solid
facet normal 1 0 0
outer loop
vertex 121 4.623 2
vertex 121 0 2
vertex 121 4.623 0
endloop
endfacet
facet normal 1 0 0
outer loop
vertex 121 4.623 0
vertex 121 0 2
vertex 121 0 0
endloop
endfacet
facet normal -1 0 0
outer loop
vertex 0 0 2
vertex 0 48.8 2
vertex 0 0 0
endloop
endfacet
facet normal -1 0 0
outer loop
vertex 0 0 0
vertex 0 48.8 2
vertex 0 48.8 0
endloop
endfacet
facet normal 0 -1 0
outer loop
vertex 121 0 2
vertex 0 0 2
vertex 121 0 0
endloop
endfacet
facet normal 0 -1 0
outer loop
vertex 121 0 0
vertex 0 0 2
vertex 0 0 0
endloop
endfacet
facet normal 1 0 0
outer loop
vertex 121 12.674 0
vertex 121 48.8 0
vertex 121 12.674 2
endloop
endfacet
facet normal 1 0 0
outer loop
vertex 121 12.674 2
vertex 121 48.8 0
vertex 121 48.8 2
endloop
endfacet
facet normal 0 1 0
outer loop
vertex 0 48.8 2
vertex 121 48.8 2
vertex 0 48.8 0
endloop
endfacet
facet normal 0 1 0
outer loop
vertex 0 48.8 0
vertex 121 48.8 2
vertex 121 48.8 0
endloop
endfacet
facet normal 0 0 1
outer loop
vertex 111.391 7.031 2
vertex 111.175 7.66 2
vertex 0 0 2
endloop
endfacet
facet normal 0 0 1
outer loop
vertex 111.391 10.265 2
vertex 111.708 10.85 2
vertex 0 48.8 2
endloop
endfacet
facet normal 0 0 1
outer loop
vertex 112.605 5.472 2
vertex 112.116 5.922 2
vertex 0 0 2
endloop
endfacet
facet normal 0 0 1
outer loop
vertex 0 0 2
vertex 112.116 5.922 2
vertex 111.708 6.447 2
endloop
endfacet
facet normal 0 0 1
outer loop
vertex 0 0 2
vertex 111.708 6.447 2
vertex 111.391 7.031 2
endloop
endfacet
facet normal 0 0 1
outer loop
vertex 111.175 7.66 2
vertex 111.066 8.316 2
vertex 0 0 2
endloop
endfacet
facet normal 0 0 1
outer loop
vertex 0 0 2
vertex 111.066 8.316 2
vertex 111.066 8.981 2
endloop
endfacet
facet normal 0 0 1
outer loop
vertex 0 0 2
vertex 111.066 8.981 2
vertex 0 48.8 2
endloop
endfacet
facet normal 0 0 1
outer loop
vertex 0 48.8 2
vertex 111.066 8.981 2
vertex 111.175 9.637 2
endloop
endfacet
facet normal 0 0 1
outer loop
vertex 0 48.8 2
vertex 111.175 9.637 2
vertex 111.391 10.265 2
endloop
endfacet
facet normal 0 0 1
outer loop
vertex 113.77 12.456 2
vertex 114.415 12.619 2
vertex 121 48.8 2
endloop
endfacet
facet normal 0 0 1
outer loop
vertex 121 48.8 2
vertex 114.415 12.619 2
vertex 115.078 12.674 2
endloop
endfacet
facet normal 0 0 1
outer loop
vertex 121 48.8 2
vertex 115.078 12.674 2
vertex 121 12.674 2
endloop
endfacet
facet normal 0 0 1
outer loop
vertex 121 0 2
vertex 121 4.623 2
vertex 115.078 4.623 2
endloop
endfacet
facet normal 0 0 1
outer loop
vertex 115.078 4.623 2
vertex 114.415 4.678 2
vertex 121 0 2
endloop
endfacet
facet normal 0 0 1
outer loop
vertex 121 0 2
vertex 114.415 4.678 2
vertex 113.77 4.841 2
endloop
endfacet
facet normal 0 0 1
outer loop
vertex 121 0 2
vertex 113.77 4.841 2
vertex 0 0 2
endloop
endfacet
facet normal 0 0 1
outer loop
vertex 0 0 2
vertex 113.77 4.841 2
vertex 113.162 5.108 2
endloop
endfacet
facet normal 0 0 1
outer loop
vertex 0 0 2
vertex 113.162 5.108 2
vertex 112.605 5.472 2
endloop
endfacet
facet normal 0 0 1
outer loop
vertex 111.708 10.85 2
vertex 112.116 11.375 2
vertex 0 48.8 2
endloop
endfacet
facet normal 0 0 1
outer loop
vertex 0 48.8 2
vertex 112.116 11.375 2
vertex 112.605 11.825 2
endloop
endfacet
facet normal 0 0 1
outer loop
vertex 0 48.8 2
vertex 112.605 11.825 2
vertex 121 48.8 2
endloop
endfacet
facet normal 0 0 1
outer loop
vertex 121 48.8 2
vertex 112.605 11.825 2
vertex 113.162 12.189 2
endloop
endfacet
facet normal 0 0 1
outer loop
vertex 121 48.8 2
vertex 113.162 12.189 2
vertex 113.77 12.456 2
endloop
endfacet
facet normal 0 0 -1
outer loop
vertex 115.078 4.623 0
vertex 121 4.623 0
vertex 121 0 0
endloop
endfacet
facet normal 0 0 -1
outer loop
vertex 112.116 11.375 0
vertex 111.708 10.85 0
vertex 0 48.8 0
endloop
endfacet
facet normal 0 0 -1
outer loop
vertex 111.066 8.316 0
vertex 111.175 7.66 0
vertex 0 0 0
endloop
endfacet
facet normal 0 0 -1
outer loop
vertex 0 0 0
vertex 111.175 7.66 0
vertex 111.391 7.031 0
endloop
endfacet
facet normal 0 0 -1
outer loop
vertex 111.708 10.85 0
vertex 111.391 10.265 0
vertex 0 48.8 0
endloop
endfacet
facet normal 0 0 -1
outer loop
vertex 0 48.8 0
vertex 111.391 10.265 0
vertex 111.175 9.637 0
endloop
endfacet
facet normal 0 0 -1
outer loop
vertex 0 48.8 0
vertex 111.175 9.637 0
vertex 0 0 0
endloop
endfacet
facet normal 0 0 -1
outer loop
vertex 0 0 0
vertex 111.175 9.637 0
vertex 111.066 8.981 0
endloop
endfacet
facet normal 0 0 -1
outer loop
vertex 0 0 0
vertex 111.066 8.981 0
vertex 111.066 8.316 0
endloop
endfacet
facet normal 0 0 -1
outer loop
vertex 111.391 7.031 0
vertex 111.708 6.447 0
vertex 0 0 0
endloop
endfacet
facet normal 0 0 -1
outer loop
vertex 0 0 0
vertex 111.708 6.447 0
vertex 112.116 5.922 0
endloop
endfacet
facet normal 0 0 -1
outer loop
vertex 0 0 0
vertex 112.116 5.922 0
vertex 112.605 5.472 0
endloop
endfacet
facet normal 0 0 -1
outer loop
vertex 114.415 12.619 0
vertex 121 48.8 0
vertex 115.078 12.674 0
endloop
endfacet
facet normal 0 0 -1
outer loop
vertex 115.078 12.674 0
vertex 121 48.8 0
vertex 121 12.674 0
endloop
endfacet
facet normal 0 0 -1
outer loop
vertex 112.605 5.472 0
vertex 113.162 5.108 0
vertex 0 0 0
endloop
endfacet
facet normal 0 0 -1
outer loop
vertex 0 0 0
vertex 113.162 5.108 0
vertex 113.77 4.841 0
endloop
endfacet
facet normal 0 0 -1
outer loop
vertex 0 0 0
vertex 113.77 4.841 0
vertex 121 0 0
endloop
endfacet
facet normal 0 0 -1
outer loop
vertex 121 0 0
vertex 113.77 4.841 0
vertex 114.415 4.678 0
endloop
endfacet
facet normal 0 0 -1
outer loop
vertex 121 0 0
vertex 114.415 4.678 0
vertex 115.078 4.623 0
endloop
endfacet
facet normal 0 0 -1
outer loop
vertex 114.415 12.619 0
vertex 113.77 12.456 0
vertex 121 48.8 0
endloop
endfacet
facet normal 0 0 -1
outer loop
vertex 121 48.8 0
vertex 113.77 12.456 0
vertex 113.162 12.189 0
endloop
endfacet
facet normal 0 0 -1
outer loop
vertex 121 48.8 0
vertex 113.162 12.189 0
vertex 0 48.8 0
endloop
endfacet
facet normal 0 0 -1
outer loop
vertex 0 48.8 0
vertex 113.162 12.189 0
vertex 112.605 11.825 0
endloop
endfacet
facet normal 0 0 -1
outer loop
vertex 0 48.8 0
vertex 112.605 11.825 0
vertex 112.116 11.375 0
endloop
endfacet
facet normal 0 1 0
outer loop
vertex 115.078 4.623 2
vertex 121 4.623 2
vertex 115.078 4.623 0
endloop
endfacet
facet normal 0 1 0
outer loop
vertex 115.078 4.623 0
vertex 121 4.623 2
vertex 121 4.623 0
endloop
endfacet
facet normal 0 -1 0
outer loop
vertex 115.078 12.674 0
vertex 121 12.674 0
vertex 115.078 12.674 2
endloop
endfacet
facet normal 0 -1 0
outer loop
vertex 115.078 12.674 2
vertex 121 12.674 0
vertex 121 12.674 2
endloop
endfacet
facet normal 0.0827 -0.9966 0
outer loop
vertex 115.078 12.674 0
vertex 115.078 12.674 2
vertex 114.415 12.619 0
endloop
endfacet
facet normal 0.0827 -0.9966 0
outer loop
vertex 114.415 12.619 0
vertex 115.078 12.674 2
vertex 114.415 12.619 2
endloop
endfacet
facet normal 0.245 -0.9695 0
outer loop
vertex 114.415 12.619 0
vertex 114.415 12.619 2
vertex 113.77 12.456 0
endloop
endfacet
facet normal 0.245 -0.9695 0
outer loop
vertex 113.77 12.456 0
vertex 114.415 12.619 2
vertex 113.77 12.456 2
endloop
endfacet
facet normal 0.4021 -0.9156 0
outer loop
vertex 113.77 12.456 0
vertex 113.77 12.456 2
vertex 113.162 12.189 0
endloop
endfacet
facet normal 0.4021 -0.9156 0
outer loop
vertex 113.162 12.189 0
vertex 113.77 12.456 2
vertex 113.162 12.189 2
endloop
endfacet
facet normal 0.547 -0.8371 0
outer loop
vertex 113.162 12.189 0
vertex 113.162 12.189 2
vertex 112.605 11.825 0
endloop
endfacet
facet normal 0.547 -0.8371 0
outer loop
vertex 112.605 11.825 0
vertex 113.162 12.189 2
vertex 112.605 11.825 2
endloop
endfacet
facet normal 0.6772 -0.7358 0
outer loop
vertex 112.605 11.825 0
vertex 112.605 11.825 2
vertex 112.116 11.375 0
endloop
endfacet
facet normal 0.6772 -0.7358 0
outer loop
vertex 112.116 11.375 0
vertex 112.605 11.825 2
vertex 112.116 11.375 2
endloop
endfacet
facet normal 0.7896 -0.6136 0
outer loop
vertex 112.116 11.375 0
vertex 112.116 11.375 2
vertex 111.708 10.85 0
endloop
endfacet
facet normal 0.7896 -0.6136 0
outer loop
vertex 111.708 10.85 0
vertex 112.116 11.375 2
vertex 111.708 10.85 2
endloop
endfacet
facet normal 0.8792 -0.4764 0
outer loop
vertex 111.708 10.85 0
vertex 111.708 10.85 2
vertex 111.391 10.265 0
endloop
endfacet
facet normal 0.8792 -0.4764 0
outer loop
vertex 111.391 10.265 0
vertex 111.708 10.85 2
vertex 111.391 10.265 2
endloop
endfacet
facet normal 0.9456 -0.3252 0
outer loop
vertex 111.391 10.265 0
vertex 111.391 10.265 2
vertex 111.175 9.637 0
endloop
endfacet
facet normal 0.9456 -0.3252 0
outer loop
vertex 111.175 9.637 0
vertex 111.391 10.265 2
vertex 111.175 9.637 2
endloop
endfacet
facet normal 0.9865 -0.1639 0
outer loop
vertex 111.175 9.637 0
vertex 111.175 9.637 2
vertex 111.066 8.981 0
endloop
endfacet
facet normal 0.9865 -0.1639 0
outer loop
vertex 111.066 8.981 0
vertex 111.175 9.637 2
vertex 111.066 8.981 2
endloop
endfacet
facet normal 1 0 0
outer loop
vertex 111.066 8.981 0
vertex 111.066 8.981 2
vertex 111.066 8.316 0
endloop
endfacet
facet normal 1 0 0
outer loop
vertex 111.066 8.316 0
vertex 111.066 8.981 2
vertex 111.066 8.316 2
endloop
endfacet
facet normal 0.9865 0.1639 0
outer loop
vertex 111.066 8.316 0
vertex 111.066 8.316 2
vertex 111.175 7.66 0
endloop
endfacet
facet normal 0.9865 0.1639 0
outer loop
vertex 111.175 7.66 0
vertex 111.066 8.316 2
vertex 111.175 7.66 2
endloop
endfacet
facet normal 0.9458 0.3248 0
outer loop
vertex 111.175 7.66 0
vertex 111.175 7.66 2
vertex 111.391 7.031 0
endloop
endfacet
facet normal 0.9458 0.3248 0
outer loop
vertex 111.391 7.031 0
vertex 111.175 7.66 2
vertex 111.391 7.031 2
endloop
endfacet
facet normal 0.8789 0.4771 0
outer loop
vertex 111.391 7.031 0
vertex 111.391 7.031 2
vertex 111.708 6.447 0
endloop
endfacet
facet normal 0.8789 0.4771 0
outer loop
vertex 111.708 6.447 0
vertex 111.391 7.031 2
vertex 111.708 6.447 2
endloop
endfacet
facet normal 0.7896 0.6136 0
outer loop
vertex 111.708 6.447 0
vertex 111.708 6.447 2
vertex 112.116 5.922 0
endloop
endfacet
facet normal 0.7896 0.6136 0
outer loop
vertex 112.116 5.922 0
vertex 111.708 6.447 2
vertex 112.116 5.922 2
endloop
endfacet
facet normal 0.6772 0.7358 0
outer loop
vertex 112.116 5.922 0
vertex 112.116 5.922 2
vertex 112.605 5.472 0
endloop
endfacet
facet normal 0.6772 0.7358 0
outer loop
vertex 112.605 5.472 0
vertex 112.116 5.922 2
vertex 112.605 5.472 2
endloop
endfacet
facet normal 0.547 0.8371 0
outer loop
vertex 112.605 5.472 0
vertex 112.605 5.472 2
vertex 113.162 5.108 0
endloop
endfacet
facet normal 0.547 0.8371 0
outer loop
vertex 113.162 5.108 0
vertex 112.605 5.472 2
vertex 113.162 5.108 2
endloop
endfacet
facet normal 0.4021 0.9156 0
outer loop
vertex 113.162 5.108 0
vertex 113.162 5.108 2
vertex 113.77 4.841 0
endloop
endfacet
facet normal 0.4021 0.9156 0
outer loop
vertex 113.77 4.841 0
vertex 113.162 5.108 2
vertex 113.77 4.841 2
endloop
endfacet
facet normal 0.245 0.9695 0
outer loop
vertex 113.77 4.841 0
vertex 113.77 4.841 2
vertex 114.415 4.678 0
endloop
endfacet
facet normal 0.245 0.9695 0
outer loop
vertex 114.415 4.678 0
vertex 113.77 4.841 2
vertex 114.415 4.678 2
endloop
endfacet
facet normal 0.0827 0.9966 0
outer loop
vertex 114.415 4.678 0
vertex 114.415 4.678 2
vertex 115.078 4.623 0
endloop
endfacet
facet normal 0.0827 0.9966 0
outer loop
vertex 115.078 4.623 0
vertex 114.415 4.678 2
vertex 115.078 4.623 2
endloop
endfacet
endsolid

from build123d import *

# Parameters (mm, degrees)
SCHIZZO1_W                   = 121
SCHIZZO1_H                   = 48.8
ESTRUSIONE_ESTRUSIONE1_DEPTH = 2
TAGLIO_ESTRUSIONE1_DEPTH     = 12


with BuildPart() as part:
    # Schizzo1 → Estrusione-Estrusione1 (new body)
    with BuildSketch(Plane.XY):
        with Locations((60.5, 24.4)):
            Rectangle(SCHIZZO1_W, SCHIZZO1_H)
    extrude(amount=ESTRUSIONE_ESTRUSIONE1_DEPTH)

    # Schizzo2 → Taglio-Estrusione1 (cut)
    with BuildSketch(Plane.XY.offset(2)):
        with BuildLine():
            Line((126.922454277, 4.622930456), (115.077545723, 4.622930456))
            ThreePointArc((115.077545723, 4.622930456), (111.052124488, 8.64835169), (115.077545723, 12.673772925))
            Line((115.077545723, 12.673772925), (126.922454277, 12.673772925))
            ThreePointArc((126.922454277, 12.673772925), (130.947875512, 8.64835169), (126.922454277, 4.622930456))
        make_face()
    extrude(amount=-TAGLIO_ESTRUSIONE1_DEPTH, mode=Mode.SUBTRACT)


solid = part.part
